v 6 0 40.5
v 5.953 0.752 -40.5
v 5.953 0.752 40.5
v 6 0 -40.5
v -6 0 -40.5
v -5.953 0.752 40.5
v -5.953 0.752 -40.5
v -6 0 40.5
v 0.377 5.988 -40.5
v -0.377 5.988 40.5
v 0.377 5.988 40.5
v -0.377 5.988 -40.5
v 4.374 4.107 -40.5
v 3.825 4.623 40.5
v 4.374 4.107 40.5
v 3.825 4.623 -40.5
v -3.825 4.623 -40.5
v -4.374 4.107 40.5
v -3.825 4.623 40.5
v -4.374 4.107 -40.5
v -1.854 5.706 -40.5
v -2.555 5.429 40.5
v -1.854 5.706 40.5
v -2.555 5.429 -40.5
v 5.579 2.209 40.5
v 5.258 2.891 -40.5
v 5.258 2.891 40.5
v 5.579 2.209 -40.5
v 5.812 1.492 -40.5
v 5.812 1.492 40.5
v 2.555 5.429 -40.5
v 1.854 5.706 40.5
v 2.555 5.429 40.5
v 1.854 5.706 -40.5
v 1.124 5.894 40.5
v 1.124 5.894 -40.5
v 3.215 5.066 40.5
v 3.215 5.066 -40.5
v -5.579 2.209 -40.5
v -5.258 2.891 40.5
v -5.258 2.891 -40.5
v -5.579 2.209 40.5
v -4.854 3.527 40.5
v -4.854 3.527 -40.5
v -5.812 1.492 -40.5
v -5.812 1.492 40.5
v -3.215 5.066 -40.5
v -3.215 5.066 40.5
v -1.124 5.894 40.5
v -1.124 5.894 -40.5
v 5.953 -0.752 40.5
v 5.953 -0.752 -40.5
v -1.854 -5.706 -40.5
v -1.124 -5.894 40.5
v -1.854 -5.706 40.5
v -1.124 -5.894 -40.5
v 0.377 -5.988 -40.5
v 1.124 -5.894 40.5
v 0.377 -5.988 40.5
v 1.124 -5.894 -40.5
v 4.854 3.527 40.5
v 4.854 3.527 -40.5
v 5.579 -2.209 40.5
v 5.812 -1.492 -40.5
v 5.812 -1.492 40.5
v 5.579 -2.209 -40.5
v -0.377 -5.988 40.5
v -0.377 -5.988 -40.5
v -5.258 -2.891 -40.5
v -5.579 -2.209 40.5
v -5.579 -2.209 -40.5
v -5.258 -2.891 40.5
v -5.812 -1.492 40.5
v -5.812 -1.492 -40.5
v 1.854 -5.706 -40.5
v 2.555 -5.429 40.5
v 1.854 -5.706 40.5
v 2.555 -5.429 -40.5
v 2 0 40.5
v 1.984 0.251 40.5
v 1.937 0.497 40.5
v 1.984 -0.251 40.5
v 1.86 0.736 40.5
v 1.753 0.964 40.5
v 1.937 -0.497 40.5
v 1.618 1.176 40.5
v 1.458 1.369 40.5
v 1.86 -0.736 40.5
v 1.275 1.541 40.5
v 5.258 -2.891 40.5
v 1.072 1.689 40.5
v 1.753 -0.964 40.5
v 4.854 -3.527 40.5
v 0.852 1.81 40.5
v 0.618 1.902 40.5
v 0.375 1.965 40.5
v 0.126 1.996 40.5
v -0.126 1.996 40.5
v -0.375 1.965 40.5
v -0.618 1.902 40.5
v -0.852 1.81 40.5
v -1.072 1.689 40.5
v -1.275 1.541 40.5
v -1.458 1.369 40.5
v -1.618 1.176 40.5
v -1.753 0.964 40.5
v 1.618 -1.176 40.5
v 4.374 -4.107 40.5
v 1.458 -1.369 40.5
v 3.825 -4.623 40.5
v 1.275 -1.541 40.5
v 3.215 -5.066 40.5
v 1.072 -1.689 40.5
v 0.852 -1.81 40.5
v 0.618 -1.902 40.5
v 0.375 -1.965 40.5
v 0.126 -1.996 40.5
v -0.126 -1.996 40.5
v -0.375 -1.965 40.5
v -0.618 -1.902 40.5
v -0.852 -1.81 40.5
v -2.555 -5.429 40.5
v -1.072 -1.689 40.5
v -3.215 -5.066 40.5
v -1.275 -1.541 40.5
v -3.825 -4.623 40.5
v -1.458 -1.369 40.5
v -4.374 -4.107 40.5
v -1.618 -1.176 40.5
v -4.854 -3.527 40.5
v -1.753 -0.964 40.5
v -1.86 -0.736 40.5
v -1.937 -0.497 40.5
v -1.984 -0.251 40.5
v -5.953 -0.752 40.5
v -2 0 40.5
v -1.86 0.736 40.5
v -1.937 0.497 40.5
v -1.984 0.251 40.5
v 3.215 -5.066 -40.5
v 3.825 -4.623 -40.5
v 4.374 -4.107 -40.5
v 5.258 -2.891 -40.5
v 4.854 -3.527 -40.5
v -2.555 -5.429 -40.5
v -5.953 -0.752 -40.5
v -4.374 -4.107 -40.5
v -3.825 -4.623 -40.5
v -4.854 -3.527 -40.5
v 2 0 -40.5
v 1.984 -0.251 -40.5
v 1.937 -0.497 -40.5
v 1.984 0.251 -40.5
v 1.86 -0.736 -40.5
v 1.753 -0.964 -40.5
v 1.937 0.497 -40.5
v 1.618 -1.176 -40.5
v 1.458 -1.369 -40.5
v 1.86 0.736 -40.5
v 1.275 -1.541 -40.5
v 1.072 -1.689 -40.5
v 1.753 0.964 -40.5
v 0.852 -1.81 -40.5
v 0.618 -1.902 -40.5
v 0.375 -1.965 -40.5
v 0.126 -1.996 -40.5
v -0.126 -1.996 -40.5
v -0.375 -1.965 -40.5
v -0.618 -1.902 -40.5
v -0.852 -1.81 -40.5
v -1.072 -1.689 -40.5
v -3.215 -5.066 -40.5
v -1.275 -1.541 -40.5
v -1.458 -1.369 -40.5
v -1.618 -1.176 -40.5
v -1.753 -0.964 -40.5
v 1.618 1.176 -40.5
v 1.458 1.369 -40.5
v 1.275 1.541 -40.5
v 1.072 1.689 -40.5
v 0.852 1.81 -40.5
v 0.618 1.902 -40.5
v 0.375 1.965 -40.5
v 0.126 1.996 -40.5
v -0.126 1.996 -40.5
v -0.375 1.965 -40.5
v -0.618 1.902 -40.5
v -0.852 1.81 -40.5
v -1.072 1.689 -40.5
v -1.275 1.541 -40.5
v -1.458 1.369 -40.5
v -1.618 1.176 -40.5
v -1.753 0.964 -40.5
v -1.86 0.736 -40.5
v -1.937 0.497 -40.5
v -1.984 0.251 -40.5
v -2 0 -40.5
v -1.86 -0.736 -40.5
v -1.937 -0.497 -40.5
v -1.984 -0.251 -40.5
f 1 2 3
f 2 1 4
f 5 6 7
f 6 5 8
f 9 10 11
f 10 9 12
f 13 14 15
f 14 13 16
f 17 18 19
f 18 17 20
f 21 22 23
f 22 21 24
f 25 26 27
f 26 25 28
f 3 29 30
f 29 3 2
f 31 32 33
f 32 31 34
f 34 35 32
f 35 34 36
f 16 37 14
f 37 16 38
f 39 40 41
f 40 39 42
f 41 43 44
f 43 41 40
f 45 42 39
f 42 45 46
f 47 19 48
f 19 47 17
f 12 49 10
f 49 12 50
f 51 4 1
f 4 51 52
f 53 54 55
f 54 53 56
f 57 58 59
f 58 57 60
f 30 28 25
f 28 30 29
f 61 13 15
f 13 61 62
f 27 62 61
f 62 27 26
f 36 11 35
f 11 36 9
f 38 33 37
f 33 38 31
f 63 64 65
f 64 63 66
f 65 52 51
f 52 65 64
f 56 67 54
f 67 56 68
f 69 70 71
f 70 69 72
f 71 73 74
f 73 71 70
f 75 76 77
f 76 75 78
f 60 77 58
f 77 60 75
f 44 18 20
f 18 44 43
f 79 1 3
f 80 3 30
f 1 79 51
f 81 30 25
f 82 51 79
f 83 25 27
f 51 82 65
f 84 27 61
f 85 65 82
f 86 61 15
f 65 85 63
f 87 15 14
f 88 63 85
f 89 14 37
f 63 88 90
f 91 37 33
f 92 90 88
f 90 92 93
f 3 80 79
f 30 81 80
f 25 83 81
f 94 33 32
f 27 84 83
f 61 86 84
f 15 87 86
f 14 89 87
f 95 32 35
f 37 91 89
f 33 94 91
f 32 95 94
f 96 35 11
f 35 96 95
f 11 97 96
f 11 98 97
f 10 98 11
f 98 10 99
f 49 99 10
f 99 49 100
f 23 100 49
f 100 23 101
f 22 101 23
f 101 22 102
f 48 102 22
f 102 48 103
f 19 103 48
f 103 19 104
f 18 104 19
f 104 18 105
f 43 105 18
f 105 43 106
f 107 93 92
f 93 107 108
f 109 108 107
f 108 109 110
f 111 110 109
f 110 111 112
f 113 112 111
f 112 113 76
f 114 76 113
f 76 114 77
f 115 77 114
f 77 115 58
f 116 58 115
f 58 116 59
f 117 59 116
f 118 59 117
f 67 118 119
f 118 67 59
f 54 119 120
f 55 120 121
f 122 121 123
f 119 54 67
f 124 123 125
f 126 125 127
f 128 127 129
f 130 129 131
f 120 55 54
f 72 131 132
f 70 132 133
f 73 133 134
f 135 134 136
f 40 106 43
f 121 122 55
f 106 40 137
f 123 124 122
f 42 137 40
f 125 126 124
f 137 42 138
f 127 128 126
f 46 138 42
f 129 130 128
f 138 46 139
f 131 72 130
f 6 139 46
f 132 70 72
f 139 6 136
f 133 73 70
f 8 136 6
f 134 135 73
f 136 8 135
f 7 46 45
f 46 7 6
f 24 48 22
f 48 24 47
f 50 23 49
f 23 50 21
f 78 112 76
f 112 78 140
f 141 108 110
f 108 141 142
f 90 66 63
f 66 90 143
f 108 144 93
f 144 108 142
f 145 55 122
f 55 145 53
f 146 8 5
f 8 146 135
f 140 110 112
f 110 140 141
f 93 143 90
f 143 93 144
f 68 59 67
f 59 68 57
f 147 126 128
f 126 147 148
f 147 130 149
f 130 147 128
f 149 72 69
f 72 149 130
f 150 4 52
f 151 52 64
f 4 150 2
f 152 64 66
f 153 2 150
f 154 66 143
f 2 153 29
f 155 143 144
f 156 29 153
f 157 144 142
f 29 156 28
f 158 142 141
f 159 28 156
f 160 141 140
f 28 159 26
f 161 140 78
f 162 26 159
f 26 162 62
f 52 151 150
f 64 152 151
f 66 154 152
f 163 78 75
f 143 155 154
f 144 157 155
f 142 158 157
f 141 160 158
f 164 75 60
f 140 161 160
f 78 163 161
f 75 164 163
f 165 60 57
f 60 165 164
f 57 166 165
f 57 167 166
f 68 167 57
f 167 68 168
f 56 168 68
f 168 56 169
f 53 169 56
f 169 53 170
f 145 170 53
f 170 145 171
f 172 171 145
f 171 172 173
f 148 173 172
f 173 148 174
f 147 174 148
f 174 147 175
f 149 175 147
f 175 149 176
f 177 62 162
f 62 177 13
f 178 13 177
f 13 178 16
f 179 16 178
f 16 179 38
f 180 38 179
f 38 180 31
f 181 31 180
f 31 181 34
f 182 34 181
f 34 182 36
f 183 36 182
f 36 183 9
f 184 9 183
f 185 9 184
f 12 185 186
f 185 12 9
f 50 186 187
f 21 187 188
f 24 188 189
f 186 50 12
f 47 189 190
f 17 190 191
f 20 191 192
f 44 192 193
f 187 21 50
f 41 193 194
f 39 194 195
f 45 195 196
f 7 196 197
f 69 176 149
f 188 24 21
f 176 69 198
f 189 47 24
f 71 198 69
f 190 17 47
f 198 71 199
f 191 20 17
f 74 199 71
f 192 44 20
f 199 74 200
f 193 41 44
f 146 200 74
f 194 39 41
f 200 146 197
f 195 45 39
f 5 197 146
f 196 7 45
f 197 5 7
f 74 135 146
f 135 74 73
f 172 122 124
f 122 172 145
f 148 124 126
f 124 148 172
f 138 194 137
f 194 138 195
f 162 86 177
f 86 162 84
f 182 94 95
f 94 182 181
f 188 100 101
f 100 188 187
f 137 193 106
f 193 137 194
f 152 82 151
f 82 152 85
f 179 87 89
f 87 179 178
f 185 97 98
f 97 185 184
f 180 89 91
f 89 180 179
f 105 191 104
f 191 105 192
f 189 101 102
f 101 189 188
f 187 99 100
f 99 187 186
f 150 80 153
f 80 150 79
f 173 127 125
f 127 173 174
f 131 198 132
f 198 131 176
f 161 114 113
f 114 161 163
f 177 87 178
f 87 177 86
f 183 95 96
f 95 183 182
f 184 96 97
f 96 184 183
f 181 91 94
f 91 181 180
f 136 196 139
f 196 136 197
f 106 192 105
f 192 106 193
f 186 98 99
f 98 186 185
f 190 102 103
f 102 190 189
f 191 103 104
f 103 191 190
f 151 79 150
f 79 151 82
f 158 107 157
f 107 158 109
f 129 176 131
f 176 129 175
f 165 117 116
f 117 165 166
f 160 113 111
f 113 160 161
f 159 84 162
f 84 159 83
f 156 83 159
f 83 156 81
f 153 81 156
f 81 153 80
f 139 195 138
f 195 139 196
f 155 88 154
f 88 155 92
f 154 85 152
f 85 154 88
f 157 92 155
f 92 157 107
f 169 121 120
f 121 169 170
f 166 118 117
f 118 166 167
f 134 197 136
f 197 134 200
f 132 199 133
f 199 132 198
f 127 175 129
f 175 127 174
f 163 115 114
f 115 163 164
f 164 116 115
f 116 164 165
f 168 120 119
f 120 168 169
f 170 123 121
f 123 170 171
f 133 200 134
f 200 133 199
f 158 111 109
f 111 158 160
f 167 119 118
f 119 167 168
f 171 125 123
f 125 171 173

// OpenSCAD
$fn = 50;


difference() {
	union() {
		translate(v = [0, 0, -40.5000000000]) {
			cylinder(h = 81, r = 6.0000000000);
		}
	}
	union() {
		translate(v = [0, 0, -100.0000000000]) {
			cylinder(h = 200, r = 2.0000000000);
		}
	}
}
